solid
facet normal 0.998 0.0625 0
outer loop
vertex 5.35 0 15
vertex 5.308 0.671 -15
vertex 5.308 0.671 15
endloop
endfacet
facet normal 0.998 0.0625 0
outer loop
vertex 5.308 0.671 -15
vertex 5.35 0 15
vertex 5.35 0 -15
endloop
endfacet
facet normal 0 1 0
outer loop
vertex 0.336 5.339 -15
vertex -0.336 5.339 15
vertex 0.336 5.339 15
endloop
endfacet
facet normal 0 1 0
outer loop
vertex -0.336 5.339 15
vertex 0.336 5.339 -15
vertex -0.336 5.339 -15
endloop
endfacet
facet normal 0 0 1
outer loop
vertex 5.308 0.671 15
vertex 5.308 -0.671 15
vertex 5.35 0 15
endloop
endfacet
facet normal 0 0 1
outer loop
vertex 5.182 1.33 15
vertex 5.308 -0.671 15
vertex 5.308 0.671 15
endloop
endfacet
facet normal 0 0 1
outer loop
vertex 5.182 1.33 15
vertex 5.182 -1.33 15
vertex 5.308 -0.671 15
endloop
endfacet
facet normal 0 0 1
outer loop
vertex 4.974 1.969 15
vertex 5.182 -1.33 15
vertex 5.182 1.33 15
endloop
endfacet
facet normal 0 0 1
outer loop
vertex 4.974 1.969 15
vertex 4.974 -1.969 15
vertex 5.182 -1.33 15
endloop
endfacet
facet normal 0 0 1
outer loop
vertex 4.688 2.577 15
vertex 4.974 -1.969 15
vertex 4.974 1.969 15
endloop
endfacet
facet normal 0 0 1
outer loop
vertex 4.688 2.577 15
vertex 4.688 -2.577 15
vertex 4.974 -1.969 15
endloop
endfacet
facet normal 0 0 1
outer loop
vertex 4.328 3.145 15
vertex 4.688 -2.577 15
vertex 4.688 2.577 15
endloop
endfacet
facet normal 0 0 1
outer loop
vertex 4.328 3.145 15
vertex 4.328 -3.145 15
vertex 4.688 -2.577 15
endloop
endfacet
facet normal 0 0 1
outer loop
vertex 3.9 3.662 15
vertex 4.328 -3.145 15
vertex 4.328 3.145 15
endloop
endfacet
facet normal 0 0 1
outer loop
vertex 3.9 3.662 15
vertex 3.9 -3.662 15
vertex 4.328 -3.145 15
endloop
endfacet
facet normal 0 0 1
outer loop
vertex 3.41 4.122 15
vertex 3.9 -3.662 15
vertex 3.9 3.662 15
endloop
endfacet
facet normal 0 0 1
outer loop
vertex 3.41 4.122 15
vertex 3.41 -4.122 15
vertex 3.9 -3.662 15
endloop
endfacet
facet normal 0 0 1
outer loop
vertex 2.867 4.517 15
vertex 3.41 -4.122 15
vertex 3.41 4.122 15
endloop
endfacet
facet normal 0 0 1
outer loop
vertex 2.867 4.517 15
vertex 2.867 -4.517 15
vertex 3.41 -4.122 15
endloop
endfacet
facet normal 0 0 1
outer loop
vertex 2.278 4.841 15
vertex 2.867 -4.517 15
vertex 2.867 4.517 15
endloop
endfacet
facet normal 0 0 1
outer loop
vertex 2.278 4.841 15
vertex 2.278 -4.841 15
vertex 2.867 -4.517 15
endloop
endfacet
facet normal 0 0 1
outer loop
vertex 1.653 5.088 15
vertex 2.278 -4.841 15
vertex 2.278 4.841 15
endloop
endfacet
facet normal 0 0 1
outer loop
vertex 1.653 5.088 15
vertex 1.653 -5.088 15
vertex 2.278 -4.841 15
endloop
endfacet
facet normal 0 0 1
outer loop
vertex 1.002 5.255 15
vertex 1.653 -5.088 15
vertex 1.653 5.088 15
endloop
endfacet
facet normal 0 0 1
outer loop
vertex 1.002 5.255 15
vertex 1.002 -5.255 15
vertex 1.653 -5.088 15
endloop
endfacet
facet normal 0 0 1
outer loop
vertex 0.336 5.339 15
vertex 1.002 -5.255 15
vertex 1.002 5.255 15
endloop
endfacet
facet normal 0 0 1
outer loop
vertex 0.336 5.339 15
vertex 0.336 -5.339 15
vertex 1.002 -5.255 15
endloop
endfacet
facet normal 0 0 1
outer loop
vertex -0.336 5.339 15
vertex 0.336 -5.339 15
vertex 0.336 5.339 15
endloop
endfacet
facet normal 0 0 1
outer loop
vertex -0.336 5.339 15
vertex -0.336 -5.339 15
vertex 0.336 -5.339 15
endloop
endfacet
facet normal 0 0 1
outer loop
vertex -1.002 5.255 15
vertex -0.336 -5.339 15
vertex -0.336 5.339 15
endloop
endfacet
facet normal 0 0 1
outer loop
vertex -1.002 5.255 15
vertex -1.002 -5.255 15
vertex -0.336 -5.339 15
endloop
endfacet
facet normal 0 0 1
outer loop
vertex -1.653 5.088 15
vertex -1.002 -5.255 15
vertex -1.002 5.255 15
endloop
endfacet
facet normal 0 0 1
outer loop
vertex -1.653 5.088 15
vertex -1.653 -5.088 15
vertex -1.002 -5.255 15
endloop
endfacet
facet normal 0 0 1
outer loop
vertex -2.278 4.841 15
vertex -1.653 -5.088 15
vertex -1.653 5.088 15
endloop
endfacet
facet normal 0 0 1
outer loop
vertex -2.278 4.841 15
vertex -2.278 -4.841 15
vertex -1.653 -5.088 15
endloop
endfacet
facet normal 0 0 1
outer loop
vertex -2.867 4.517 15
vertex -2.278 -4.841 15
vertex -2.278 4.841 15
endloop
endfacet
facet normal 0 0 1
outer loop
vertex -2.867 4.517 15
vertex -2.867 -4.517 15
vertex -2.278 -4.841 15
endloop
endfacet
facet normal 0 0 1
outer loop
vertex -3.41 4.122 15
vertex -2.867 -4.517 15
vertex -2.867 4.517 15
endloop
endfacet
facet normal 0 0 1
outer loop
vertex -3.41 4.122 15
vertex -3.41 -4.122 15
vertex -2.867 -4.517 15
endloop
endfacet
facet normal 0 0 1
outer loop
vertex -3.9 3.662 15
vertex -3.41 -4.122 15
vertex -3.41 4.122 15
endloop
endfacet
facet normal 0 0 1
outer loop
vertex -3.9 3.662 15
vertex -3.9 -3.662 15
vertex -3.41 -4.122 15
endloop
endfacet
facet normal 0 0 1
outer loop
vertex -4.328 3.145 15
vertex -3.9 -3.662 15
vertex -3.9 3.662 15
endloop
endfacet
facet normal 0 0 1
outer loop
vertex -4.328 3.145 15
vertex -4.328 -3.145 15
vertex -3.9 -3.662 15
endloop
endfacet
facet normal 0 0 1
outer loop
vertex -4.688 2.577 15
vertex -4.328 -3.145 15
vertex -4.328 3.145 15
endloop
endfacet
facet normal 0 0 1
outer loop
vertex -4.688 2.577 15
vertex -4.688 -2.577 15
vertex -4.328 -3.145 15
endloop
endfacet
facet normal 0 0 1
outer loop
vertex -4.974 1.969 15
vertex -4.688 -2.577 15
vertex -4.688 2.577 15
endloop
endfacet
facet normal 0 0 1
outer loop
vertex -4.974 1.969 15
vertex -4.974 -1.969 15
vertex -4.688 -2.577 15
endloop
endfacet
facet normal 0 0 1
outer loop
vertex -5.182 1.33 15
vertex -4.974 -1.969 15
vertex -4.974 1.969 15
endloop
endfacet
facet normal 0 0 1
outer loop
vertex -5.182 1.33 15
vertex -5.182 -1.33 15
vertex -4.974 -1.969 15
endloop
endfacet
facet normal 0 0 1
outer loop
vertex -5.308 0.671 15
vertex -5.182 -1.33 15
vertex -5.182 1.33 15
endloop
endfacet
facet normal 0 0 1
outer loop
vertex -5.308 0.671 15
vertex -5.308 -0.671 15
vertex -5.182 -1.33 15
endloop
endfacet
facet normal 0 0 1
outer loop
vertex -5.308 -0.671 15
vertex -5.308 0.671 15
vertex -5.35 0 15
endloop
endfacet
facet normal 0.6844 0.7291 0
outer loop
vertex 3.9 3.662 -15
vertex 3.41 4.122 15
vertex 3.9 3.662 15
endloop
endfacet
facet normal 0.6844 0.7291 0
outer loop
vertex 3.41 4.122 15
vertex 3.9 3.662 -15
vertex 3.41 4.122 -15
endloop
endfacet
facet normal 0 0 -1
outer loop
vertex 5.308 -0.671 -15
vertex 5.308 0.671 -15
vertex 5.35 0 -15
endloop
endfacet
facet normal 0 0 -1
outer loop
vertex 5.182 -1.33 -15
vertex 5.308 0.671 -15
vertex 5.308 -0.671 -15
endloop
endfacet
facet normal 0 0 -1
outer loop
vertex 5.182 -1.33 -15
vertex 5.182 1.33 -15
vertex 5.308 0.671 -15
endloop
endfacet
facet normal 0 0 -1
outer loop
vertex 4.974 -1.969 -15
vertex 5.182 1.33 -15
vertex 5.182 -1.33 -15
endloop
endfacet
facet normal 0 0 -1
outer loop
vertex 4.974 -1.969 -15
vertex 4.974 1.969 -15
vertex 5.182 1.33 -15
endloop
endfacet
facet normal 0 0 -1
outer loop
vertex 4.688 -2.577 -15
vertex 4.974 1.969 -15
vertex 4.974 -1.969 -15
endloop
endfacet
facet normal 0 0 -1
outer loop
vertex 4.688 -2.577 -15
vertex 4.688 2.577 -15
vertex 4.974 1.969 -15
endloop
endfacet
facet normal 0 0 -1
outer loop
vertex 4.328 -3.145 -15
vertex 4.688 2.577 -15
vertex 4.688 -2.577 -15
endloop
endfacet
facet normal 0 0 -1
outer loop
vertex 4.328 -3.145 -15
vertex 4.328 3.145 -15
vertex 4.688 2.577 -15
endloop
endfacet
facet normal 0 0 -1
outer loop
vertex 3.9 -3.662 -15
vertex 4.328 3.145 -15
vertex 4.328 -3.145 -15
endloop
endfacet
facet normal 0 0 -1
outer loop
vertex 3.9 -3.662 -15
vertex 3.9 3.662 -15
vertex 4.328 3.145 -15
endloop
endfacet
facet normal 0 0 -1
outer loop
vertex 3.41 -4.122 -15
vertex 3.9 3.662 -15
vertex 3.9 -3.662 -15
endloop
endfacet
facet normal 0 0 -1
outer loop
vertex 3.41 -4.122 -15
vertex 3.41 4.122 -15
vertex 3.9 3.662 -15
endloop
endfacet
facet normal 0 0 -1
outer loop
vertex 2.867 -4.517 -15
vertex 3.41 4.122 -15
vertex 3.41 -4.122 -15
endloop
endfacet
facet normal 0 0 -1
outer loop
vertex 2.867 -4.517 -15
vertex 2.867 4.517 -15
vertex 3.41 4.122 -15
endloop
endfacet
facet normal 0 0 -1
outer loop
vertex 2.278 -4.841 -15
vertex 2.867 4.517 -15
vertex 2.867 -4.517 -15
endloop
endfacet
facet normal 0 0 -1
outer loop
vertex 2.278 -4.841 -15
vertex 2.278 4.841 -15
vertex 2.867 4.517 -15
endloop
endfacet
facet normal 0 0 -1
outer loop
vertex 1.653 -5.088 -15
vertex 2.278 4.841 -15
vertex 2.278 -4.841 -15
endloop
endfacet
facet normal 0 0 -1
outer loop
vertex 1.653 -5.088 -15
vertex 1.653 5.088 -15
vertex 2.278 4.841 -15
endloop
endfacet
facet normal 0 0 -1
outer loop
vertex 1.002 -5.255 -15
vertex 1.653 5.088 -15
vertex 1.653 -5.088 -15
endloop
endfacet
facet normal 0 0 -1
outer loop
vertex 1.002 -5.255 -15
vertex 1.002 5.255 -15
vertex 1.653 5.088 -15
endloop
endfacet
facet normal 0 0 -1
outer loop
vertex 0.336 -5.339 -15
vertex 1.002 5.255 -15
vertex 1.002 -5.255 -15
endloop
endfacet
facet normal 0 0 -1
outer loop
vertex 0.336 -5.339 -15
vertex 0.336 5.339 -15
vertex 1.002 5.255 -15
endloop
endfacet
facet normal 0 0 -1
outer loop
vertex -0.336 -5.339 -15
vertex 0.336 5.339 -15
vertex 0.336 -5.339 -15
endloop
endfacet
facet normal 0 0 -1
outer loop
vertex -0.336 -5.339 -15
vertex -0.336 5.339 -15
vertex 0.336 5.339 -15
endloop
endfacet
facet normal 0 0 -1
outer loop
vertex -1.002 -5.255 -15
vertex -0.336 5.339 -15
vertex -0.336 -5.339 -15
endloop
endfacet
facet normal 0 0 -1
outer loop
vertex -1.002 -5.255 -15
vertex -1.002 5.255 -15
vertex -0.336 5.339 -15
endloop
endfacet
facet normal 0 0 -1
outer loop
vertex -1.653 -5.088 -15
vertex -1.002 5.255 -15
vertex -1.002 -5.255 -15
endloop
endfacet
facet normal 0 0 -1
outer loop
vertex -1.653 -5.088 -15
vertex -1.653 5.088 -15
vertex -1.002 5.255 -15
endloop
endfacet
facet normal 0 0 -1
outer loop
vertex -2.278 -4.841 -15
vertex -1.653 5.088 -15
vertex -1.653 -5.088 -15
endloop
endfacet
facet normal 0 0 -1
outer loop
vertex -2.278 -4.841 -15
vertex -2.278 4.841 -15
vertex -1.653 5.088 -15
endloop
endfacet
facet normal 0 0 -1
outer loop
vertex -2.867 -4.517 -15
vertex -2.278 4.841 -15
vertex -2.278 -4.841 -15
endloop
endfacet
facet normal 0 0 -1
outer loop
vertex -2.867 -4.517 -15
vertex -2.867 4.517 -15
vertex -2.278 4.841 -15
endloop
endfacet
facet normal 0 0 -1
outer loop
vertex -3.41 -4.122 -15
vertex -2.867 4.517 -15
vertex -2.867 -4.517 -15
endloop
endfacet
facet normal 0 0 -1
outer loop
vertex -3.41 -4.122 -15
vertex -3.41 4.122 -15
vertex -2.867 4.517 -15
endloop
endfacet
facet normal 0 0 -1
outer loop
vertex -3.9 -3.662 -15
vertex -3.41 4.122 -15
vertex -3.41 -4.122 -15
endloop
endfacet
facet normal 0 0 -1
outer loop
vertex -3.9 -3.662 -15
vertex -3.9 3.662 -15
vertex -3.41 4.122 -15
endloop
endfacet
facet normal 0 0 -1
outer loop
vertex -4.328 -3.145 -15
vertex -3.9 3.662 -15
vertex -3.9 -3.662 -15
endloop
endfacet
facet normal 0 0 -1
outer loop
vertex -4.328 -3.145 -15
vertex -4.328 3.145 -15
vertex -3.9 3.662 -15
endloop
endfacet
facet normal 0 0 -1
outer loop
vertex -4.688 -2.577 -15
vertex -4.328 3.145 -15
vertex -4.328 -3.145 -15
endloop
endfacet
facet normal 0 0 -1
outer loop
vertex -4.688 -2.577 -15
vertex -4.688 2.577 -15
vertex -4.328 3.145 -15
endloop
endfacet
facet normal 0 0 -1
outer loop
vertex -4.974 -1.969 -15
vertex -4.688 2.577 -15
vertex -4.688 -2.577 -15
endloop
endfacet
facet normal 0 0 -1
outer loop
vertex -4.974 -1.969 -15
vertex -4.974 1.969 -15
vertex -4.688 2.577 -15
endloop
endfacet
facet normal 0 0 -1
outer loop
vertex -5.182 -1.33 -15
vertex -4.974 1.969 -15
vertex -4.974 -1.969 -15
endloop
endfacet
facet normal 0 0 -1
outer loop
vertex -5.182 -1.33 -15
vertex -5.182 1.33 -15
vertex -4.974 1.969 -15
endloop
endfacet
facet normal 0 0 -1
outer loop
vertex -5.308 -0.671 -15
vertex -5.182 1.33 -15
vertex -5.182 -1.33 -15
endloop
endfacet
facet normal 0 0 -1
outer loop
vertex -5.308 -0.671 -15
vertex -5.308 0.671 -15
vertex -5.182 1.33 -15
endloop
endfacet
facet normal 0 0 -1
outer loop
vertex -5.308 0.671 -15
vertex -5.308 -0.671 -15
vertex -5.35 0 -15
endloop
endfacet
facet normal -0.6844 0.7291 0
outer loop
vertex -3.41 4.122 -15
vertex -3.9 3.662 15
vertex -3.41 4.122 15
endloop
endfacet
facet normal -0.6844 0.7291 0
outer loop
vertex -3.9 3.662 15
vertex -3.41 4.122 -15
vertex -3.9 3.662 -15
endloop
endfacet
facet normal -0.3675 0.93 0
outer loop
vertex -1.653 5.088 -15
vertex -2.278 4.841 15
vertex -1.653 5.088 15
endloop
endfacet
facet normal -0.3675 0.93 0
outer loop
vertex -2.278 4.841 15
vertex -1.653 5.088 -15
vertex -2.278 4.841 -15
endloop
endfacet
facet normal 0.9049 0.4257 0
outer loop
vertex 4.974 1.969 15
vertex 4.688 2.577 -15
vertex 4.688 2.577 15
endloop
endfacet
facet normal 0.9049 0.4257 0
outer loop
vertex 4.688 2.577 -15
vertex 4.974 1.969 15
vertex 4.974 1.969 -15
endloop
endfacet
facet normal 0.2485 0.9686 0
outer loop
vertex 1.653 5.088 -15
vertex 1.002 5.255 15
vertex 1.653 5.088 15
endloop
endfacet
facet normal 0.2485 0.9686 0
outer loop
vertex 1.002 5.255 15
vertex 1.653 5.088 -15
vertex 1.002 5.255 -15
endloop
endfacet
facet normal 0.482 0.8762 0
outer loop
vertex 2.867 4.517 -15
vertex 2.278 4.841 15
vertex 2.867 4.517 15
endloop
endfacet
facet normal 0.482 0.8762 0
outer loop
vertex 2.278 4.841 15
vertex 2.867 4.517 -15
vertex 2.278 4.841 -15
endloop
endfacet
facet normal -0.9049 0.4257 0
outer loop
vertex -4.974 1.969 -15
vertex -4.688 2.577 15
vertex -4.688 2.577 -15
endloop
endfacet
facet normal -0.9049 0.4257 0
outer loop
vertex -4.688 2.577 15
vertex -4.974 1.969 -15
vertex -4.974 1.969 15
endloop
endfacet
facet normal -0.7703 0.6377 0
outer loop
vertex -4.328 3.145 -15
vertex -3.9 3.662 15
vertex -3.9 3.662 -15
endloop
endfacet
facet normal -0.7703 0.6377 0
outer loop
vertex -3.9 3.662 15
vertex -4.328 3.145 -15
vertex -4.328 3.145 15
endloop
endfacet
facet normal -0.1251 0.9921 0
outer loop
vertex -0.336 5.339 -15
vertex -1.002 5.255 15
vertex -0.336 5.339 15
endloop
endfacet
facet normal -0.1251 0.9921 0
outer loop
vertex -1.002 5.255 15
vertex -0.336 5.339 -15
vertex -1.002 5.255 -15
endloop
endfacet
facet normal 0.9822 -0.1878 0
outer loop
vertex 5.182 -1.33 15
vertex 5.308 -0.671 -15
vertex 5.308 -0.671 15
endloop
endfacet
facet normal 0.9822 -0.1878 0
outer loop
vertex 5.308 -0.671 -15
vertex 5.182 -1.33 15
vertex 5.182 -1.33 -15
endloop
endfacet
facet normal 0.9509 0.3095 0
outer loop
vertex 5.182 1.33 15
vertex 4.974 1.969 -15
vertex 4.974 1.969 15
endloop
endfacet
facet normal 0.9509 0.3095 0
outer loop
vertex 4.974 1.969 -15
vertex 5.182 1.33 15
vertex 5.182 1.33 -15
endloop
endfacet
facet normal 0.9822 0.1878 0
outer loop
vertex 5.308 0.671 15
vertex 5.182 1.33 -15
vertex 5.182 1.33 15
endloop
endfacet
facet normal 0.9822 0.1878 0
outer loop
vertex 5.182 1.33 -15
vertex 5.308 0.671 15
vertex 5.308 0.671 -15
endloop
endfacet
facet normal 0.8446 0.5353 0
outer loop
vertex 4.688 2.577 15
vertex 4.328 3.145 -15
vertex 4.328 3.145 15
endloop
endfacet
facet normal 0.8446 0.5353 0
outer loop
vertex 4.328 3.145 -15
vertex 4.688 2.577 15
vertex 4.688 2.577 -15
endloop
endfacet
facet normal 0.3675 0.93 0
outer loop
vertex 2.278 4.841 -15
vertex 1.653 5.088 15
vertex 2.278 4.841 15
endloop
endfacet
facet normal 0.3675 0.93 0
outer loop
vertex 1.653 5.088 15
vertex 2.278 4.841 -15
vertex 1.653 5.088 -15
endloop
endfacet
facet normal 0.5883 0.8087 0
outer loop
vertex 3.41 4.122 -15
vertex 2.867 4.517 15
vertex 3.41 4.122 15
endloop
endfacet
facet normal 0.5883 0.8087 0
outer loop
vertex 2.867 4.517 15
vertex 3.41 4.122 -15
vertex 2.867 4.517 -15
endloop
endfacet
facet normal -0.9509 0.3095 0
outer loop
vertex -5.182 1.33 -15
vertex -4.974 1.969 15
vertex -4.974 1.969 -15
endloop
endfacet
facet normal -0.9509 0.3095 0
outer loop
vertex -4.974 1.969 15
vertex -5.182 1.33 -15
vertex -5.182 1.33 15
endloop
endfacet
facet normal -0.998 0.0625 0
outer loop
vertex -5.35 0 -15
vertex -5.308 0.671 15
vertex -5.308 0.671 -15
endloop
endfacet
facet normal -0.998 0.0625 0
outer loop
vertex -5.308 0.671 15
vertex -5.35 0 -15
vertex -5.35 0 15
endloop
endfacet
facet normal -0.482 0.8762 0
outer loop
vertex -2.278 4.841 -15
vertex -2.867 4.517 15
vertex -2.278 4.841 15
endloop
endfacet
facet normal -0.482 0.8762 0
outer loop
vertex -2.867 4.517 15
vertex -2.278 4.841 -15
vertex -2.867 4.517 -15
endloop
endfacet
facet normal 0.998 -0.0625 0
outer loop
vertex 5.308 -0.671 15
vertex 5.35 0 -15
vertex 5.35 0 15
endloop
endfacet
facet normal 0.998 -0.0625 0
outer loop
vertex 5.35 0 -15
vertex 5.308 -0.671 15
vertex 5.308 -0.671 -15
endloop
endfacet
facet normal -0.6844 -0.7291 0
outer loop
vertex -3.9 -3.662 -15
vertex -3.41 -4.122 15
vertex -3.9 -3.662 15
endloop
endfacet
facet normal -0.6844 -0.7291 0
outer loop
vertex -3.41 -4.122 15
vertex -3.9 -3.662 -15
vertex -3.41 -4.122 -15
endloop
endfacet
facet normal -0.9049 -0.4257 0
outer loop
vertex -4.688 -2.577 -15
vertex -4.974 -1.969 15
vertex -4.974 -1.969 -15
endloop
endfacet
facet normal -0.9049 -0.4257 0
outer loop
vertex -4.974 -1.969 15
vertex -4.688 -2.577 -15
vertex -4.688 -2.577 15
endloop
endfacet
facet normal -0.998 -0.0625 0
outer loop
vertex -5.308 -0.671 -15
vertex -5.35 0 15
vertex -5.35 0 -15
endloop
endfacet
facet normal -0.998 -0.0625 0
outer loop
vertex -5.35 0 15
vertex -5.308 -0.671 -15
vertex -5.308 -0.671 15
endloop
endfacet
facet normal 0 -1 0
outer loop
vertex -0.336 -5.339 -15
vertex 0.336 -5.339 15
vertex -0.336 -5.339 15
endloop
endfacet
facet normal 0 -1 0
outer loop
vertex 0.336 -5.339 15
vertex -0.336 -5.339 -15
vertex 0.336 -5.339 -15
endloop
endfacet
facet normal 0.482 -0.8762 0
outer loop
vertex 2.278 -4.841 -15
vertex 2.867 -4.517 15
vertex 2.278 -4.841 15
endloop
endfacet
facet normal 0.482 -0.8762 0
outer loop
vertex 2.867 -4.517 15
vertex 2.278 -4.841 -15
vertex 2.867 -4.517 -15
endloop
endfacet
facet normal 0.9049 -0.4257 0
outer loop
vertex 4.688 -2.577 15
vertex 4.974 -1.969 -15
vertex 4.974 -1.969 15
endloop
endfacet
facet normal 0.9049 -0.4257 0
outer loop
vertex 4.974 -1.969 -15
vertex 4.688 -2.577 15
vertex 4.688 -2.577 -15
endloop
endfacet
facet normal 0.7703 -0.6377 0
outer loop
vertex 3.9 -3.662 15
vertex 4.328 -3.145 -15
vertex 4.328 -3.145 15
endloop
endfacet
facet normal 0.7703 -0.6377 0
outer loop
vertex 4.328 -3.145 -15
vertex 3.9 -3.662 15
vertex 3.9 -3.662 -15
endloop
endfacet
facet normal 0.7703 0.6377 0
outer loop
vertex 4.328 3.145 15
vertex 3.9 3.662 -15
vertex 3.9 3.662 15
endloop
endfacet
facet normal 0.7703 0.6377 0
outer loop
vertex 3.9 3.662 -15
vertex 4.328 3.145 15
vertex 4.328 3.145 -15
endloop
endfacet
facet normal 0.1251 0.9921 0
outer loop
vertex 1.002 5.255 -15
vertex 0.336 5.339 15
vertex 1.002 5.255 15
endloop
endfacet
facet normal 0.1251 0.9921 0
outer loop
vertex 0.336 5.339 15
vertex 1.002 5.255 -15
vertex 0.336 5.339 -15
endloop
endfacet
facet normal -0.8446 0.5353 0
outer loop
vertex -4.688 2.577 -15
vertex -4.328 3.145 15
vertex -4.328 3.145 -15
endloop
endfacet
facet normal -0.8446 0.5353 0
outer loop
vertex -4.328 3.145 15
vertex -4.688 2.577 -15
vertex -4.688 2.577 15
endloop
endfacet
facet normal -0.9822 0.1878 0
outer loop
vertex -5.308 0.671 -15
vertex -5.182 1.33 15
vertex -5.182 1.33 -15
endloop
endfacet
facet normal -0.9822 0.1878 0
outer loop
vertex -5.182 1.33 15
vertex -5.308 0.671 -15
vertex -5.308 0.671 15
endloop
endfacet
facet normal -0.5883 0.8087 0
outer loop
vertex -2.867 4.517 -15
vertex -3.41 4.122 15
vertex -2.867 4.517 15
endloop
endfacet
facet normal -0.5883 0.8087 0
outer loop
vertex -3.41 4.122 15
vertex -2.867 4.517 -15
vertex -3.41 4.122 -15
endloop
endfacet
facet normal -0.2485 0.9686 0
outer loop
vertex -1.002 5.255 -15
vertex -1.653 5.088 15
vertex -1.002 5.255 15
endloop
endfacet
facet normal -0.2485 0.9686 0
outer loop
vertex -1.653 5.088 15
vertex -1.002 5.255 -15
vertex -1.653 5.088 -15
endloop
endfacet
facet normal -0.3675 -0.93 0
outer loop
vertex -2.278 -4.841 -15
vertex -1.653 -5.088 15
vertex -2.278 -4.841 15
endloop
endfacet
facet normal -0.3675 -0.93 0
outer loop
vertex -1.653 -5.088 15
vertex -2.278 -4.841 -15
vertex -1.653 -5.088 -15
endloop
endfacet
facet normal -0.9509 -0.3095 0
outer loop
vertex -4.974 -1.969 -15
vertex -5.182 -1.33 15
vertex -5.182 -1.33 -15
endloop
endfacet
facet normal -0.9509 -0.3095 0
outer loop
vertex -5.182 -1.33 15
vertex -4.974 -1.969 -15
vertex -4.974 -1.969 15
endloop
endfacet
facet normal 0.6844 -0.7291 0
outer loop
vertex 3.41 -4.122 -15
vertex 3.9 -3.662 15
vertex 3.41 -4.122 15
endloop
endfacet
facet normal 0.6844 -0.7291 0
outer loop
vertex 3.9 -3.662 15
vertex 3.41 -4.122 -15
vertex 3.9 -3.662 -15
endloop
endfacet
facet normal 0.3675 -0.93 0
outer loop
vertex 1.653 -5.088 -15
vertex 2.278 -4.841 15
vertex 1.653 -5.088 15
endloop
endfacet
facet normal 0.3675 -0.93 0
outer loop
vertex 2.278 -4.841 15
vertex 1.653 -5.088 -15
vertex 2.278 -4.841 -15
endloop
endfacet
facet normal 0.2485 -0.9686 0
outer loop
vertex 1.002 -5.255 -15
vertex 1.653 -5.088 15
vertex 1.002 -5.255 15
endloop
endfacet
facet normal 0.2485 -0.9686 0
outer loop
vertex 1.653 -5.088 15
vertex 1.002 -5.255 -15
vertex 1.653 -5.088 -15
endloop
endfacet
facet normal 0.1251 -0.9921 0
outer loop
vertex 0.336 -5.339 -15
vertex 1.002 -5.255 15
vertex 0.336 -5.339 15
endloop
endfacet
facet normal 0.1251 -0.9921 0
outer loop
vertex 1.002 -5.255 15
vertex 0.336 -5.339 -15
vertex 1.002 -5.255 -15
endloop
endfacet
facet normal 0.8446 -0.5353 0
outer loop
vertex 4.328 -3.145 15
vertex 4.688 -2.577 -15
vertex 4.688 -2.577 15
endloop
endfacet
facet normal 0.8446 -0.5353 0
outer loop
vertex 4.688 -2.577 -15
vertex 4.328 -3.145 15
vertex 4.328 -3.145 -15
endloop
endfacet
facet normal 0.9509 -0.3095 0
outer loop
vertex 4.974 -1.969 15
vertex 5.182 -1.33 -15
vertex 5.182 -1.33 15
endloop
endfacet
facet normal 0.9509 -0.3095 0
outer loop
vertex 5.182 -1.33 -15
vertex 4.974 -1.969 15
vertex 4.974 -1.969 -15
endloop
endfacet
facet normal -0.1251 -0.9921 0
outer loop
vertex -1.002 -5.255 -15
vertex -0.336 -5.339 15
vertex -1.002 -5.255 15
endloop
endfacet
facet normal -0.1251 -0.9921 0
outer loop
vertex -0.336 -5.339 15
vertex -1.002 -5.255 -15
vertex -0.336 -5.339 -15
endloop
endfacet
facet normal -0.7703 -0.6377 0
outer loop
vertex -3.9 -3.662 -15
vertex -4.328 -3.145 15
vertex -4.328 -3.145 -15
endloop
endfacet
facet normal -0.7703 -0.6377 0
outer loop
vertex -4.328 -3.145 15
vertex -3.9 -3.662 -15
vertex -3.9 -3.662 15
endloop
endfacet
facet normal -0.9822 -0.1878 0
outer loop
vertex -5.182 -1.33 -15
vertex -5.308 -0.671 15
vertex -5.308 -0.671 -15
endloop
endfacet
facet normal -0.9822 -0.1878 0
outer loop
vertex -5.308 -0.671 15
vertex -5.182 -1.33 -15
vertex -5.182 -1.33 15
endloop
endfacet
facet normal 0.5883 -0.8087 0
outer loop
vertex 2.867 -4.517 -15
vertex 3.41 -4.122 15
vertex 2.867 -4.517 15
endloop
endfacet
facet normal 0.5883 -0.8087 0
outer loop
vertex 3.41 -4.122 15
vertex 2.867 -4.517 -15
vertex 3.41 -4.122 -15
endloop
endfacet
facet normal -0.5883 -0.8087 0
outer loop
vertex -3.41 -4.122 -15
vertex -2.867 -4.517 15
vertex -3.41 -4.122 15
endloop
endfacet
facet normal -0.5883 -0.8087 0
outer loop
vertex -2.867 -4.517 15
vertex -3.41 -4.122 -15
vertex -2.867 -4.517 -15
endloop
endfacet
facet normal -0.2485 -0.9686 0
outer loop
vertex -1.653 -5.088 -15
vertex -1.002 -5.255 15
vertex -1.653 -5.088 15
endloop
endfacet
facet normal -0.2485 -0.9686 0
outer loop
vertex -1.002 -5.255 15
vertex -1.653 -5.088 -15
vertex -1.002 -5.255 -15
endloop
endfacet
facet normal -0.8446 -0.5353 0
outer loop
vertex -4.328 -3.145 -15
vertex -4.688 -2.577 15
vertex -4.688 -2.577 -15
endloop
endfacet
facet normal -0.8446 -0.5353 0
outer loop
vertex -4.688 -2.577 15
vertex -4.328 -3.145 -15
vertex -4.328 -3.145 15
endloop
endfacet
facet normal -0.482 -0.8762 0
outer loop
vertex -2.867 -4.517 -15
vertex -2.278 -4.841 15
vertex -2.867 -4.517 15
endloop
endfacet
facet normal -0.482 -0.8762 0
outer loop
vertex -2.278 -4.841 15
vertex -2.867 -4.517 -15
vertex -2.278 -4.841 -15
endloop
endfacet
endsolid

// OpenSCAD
$fn = 50;


difference() {
	union() {
		translate(v = [0, 0, -15.0000000000]) {
			cylinder(h = 30, r = 5.3500000000);
		}
	}
	union() {
		translate(v = [0, 0, -100.0000000000]) {
			cylinder(h = 200, r = 0);
		}
	}
}
